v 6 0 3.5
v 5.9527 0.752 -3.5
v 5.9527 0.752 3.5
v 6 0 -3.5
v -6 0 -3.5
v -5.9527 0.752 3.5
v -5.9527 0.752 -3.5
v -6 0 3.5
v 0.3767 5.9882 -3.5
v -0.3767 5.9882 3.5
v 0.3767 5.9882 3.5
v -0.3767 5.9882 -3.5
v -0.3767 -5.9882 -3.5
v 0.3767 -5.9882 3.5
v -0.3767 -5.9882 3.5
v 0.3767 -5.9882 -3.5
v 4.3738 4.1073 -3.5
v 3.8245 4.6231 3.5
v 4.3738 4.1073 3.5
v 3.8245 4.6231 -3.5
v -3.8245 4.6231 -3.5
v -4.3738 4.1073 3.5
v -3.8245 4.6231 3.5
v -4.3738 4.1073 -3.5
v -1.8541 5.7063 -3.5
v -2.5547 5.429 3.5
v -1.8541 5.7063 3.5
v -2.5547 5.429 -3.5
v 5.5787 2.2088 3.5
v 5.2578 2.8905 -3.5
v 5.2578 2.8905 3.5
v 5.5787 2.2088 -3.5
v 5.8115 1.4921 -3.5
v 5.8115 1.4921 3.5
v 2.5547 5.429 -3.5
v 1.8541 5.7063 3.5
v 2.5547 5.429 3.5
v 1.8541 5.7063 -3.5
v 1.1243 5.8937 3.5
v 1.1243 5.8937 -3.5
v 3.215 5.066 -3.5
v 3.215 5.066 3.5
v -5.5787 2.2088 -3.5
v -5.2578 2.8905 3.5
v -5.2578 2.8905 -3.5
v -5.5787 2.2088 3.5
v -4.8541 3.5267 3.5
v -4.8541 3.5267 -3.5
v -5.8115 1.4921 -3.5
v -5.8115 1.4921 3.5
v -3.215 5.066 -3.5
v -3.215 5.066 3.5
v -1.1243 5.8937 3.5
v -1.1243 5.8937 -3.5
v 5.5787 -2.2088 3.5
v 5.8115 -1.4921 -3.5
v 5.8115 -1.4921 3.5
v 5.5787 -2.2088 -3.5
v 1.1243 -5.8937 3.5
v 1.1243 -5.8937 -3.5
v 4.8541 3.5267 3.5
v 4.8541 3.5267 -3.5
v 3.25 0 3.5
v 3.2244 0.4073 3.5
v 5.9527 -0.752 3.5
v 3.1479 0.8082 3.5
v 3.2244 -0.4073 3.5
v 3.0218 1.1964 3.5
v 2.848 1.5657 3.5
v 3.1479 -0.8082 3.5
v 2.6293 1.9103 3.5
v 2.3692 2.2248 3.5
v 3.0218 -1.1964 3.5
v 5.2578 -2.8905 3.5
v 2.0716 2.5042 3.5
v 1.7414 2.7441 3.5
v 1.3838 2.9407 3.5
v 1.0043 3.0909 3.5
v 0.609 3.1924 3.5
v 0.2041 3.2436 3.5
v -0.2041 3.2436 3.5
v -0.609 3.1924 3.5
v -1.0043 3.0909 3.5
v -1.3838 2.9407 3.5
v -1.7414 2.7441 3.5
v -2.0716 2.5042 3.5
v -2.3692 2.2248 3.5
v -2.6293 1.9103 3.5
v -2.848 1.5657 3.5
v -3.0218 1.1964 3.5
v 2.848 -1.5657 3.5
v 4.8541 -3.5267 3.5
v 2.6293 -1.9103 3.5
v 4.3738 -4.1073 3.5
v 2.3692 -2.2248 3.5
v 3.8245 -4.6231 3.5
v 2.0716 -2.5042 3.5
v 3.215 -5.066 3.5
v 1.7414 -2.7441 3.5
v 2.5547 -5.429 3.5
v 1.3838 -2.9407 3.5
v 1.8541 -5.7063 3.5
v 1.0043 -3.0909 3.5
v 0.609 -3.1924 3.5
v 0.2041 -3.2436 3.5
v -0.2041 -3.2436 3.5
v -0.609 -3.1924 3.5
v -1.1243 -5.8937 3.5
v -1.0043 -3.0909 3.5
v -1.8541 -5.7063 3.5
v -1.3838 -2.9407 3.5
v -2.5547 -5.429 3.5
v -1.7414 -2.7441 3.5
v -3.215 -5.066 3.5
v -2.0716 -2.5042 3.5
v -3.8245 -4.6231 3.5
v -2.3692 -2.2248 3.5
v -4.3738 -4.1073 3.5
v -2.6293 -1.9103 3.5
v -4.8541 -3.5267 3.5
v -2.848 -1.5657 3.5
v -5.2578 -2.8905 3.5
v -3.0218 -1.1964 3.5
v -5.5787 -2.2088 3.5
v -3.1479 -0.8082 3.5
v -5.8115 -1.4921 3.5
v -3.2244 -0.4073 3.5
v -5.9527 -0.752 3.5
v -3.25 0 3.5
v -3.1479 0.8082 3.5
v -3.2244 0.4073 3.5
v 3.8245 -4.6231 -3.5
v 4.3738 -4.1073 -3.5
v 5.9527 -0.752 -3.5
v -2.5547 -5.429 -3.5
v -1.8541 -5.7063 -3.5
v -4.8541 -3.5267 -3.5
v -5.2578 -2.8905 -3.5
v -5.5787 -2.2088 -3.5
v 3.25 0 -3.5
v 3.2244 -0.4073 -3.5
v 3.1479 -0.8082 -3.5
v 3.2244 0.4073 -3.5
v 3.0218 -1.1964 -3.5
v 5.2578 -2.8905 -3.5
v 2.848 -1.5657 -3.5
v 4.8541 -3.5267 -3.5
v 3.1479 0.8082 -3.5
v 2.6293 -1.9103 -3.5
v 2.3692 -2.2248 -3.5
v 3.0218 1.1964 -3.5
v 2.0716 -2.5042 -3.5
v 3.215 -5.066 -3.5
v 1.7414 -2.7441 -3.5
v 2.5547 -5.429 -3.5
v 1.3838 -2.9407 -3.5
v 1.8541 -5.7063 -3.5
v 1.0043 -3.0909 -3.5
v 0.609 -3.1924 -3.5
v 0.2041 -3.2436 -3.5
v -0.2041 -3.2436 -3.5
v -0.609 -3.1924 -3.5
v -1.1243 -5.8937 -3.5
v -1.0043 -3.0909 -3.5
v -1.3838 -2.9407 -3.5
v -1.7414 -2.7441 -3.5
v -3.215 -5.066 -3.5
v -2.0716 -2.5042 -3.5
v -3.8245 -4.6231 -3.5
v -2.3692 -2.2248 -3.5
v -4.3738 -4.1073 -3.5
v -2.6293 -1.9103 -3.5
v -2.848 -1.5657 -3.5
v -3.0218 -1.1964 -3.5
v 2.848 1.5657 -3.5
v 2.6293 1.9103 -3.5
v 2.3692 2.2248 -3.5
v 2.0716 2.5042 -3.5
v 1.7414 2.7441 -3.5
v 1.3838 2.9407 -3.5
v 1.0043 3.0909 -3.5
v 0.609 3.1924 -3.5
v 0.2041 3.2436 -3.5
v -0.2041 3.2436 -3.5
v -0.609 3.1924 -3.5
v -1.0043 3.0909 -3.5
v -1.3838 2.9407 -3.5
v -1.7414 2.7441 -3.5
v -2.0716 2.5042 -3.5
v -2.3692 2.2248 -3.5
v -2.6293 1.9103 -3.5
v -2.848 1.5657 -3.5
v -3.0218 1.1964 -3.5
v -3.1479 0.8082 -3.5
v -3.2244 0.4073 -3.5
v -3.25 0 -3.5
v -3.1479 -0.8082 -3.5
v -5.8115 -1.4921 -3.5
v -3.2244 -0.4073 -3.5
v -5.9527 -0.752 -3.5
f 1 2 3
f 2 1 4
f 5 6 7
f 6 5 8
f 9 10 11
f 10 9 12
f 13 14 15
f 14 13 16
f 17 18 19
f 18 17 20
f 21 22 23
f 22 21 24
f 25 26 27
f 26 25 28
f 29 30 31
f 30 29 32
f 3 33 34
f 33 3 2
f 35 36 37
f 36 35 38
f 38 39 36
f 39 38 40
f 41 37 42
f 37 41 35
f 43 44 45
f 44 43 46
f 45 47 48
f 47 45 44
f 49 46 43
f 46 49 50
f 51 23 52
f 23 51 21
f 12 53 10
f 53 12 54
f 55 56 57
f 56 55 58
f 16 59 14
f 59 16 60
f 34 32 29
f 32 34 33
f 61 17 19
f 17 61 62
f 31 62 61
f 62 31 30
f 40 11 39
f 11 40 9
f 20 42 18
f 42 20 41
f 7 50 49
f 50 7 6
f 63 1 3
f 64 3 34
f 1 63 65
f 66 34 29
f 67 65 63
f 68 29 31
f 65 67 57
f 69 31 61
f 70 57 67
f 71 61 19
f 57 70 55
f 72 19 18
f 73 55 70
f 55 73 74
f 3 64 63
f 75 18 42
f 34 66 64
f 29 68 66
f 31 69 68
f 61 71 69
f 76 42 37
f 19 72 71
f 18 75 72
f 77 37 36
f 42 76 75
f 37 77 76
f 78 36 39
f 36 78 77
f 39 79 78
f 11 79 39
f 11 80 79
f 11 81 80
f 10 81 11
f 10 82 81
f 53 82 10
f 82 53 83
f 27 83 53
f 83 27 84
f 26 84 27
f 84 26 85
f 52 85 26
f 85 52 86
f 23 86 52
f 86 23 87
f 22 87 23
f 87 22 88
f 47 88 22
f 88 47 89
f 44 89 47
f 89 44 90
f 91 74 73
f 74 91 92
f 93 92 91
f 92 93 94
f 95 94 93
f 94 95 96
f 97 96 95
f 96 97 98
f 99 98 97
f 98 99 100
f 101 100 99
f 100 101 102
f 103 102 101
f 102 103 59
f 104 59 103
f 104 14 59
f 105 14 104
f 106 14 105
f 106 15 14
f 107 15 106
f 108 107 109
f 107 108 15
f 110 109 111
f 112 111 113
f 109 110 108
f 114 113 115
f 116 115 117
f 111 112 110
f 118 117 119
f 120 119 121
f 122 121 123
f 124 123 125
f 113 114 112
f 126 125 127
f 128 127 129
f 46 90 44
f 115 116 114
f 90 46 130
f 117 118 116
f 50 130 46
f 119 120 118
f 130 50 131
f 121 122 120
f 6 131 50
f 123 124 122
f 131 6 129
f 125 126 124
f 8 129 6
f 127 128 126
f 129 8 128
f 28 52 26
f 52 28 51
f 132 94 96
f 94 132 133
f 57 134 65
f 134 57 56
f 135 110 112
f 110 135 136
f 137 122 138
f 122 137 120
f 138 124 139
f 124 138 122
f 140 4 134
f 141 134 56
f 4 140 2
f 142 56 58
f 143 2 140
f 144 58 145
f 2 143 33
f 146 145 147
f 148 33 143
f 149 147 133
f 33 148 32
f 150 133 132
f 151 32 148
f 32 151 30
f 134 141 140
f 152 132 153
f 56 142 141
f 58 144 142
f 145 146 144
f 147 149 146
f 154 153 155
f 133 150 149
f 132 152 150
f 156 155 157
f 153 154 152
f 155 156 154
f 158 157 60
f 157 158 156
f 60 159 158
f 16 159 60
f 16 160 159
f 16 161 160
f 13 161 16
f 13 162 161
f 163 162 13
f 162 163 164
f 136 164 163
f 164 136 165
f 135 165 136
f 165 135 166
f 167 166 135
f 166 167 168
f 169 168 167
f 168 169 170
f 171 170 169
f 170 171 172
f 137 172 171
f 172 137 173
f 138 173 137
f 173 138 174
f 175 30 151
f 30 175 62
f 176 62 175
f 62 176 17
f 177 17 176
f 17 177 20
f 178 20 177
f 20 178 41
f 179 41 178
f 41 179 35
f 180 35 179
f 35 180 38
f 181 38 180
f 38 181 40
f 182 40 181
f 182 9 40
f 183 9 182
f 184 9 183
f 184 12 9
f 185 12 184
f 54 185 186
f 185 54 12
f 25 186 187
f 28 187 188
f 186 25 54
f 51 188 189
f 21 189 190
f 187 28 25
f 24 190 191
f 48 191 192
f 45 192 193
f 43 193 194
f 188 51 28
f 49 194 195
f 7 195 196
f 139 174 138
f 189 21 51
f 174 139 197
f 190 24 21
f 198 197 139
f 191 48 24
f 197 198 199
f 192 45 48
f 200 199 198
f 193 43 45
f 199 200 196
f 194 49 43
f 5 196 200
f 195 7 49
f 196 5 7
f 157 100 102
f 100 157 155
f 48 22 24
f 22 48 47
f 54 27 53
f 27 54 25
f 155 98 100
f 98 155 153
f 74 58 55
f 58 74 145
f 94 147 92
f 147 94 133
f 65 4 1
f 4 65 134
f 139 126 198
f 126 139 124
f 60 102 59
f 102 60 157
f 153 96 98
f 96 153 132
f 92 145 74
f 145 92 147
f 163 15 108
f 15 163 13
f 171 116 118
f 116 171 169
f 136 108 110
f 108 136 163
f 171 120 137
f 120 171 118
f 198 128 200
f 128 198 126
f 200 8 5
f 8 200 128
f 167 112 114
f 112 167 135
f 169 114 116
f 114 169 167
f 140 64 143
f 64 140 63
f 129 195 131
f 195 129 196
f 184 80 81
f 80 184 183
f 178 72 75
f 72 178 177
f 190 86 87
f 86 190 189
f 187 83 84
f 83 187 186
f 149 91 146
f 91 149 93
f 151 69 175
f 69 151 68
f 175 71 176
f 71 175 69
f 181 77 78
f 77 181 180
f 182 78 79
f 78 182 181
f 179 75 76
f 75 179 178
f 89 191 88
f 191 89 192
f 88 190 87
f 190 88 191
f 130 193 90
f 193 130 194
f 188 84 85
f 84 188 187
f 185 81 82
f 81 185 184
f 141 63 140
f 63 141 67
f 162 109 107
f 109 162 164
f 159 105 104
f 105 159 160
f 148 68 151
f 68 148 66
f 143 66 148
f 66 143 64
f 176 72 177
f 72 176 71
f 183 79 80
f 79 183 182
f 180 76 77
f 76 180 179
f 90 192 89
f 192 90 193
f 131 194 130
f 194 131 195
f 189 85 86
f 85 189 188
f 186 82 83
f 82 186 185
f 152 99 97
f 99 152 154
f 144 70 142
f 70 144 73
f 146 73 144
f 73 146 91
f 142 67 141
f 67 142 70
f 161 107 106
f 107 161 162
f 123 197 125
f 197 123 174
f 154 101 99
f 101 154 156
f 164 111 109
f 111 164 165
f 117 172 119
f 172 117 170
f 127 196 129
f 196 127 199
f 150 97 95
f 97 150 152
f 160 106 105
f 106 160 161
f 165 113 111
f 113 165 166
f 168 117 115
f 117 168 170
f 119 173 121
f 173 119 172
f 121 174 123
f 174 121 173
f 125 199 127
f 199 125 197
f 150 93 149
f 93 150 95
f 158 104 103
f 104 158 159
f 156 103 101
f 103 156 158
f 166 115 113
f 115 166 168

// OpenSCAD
$fn = 50;


difference() {
	union() {
		translate(v = [0, 0, -3.5000000000]) {
			cylinder(h = 7, r = 6.0000000000);
		}
	}
	union() {
		translate(v = [0, 0, -100.0000000000]) {
			cylinder(h = 200, r = 3.2500000000);
		}
	}
}
